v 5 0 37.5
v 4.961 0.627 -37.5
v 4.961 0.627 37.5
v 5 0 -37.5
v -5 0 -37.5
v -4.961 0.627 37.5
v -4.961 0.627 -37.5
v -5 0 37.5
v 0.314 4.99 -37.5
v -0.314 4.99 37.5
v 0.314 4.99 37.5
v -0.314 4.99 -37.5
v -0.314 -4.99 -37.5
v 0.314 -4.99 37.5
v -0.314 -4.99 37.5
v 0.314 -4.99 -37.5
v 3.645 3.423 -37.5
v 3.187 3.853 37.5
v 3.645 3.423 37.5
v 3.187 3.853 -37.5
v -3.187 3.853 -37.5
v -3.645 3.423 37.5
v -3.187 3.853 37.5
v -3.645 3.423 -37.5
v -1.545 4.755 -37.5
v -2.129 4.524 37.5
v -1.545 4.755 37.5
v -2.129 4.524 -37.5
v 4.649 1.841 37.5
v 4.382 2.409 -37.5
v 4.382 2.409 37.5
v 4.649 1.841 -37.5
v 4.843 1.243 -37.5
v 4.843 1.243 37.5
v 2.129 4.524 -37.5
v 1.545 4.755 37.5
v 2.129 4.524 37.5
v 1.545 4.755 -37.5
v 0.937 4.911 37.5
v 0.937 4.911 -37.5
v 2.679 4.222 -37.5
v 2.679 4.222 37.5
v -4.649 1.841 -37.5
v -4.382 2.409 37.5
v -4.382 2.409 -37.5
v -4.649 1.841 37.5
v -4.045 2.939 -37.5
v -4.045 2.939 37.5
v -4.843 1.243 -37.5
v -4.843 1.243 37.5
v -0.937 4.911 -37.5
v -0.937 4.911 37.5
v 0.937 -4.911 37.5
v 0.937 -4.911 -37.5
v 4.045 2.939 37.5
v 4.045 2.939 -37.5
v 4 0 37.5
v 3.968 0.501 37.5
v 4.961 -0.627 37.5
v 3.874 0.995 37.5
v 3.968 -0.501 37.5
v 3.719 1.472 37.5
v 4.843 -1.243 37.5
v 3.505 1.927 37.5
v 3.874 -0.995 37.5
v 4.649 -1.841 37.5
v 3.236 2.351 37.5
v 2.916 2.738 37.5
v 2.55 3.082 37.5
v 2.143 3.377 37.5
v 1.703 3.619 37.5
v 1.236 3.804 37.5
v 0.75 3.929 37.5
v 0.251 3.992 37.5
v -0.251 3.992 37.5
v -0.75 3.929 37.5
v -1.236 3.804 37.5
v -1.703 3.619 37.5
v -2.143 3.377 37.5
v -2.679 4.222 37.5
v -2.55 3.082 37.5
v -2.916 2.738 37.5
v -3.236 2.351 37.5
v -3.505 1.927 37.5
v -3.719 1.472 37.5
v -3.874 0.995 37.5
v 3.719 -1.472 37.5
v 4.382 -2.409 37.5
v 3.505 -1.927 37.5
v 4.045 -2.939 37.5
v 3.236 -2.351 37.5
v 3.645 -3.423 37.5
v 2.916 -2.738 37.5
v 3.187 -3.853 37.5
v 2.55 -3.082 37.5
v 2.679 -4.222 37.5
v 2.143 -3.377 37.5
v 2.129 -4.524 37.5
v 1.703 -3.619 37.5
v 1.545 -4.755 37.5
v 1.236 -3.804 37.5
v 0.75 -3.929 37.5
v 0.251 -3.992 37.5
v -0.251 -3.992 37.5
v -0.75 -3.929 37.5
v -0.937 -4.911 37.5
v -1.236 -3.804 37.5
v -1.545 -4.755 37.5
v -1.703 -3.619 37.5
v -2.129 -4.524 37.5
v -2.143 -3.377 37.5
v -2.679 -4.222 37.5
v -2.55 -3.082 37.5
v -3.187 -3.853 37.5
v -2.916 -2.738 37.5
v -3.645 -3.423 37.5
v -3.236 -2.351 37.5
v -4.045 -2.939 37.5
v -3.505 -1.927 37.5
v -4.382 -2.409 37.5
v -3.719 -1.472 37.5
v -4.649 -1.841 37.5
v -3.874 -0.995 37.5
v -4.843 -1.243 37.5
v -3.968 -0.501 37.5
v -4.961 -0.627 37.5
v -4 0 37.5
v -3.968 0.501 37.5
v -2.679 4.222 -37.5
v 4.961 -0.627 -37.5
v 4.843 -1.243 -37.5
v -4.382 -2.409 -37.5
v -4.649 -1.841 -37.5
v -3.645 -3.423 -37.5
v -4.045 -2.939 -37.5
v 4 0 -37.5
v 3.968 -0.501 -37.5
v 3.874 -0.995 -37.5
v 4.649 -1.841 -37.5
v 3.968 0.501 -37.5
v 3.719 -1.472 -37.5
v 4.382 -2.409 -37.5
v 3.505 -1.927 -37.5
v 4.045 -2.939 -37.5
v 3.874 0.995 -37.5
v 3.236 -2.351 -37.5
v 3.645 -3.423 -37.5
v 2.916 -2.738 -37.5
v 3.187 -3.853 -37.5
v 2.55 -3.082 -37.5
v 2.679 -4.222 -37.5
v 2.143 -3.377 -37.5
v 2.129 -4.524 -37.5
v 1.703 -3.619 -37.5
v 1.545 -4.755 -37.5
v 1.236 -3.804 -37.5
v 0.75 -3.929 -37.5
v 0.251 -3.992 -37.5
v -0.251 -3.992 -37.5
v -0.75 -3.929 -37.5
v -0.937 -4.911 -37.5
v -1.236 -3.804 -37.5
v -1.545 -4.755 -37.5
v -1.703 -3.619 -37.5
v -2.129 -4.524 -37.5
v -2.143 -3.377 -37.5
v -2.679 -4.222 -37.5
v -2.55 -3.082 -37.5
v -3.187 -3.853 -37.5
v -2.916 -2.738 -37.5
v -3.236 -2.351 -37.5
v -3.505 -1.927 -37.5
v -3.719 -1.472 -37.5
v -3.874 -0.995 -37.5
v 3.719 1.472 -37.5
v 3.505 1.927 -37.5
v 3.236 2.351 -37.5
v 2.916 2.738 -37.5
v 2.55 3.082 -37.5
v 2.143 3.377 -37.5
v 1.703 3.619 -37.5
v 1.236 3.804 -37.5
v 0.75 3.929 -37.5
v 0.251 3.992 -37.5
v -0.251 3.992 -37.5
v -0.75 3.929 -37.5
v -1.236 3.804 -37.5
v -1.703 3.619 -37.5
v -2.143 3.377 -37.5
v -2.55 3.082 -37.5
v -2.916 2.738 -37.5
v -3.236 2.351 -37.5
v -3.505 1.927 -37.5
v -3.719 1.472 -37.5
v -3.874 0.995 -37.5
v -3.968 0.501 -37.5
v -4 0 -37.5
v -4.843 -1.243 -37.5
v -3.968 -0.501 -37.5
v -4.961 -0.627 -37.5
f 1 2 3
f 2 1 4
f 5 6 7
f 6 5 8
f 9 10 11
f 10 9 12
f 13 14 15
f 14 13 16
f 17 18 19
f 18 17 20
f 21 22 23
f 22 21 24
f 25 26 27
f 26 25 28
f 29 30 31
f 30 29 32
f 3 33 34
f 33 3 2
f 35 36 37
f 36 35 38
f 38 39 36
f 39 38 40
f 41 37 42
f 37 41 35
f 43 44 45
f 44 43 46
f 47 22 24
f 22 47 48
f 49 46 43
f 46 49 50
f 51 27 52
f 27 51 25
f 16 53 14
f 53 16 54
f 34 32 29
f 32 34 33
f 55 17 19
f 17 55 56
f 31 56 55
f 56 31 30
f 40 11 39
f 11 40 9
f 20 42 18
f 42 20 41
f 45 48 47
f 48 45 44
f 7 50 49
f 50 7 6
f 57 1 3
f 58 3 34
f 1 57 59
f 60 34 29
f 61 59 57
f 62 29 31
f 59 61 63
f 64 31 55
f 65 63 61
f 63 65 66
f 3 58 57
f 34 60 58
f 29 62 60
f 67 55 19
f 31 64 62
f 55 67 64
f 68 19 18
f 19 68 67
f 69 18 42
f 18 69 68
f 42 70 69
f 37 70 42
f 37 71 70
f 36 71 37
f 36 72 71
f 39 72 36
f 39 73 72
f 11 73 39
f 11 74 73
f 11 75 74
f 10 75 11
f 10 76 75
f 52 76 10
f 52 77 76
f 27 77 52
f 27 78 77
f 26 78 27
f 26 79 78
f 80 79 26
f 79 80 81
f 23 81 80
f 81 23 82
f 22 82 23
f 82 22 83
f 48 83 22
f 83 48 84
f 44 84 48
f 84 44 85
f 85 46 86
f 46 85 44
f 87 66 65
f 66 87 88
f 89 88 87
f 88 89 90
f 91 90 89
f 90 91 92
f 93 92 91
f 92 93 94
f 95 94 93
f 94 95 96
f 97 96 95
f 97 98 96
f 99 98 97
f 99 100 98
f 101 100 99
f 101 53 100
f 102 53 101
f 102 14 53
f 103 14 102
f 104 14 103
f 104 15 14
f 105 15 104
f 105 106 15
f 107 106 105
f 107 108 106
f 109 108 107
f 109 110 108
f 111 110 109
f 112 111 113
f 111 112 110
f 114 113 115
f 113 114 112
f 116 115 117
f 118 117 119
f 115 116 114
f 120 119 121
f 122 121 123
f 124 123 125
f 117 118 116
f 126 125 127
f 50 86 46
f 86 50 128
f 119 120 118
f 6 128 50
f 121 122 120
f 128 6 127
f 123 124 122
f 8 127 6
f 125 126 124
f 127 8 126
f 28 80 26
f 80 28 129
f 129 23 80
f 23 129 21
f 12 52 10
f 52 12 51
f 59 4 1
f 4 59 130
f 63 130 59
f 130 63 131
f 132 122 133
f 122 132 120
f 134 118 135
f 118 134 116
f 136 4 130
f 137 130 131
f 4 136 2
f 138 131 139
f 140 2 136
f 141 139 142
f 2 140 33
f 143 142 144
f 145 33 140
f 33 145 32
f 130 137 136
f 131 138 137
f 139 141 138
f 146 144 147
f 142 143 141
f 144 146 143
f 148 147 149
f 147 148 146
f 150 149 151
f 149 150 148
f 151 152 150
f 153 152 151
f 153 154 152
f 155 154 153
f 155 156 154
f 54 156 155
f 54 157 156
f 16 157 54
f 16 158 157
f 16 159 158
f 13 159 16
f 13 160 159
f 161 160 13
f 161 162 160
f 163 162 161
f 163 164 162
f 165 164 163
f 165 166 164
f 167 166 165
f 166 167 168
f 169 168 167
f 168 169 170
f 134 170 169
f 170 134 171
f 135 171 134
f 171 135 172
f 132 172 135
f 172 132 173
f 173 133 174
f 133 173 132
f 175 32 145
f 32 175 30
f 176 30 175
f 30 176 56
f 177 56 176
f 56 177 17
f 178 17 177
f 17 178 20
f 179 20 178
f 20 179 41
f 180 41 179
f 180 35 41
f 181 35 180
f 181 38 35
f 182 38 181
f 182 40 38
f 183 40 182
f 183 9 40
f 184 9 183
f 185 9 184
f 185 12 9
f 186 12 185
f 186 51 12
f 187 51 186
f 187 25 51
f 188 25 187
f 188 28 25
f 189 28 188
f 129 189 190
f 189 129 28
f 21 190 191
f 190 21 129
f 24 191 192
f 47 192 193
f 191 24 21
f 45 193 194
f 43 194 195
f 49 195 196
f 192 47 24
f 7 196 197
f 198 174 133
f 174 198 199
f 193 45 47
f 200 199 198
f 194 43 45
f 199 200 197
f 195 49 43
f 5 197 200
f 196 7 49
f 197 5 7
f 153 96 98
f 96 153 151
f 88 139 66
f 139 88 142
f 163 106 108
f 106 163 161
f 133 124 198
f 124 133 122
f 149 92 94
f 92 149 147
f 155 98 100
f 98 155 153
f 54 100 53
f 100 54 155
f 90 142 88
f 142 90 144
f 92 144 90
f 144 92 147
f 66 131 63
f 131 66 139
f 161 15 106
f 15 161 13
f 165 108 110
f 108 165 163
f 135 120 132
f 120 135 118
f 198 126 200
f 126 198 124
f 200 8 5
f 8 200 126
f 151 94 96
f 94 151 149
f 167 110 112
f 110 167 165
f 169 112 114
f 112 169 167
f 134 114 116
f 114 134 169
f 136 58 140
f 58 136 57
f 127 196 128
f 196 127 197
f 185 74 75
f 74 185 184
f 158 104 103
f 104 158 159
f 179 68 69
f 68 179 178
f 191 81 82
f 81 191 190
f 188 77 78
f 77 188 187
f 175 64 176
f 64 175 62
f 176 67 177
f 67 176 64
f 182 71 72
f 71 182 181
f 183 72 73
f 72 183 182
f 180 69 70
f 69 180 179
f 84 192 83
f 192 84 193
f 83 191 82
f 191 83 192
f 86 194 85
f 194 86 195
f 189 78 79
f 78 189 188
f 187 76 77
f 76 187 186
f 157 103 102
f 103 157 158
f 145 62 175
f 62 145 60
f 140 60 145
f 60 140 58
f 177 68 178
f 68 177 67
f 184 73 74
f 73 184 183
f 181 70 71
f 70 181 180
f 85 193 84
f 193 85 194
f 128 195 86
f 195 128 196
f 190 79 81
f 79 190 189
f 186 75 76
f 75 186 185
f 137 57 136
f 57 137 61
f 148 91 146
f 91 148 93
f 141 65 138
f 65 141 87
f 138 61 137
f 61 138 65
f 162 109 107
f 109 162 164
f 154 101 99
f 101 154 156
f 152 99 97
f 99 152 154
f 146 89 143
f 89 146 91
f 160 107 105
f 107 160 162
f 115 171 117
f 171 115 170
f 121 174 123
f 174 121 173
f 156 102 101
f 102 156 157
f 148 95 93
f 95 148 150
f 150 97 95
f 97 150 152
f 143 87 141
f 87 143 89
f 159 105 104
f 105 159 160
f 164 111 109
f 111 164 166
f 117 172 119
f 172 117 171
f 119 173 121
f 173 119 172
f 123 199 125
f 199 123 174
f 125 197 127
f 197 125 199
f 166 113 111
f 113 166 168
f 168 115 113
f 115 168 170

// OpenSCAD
$fn = 50;


difference() {
	union() {
		translate(v = [0, 0, -37.5000000000]) {
			cylinder(h = 75, r = 5.0000000000);
		}
	}
	union() {
		translate(v = [0, 0, -100.0000000000]) {
			cylinder(h = 200, r = 4);
		}
	}
}
